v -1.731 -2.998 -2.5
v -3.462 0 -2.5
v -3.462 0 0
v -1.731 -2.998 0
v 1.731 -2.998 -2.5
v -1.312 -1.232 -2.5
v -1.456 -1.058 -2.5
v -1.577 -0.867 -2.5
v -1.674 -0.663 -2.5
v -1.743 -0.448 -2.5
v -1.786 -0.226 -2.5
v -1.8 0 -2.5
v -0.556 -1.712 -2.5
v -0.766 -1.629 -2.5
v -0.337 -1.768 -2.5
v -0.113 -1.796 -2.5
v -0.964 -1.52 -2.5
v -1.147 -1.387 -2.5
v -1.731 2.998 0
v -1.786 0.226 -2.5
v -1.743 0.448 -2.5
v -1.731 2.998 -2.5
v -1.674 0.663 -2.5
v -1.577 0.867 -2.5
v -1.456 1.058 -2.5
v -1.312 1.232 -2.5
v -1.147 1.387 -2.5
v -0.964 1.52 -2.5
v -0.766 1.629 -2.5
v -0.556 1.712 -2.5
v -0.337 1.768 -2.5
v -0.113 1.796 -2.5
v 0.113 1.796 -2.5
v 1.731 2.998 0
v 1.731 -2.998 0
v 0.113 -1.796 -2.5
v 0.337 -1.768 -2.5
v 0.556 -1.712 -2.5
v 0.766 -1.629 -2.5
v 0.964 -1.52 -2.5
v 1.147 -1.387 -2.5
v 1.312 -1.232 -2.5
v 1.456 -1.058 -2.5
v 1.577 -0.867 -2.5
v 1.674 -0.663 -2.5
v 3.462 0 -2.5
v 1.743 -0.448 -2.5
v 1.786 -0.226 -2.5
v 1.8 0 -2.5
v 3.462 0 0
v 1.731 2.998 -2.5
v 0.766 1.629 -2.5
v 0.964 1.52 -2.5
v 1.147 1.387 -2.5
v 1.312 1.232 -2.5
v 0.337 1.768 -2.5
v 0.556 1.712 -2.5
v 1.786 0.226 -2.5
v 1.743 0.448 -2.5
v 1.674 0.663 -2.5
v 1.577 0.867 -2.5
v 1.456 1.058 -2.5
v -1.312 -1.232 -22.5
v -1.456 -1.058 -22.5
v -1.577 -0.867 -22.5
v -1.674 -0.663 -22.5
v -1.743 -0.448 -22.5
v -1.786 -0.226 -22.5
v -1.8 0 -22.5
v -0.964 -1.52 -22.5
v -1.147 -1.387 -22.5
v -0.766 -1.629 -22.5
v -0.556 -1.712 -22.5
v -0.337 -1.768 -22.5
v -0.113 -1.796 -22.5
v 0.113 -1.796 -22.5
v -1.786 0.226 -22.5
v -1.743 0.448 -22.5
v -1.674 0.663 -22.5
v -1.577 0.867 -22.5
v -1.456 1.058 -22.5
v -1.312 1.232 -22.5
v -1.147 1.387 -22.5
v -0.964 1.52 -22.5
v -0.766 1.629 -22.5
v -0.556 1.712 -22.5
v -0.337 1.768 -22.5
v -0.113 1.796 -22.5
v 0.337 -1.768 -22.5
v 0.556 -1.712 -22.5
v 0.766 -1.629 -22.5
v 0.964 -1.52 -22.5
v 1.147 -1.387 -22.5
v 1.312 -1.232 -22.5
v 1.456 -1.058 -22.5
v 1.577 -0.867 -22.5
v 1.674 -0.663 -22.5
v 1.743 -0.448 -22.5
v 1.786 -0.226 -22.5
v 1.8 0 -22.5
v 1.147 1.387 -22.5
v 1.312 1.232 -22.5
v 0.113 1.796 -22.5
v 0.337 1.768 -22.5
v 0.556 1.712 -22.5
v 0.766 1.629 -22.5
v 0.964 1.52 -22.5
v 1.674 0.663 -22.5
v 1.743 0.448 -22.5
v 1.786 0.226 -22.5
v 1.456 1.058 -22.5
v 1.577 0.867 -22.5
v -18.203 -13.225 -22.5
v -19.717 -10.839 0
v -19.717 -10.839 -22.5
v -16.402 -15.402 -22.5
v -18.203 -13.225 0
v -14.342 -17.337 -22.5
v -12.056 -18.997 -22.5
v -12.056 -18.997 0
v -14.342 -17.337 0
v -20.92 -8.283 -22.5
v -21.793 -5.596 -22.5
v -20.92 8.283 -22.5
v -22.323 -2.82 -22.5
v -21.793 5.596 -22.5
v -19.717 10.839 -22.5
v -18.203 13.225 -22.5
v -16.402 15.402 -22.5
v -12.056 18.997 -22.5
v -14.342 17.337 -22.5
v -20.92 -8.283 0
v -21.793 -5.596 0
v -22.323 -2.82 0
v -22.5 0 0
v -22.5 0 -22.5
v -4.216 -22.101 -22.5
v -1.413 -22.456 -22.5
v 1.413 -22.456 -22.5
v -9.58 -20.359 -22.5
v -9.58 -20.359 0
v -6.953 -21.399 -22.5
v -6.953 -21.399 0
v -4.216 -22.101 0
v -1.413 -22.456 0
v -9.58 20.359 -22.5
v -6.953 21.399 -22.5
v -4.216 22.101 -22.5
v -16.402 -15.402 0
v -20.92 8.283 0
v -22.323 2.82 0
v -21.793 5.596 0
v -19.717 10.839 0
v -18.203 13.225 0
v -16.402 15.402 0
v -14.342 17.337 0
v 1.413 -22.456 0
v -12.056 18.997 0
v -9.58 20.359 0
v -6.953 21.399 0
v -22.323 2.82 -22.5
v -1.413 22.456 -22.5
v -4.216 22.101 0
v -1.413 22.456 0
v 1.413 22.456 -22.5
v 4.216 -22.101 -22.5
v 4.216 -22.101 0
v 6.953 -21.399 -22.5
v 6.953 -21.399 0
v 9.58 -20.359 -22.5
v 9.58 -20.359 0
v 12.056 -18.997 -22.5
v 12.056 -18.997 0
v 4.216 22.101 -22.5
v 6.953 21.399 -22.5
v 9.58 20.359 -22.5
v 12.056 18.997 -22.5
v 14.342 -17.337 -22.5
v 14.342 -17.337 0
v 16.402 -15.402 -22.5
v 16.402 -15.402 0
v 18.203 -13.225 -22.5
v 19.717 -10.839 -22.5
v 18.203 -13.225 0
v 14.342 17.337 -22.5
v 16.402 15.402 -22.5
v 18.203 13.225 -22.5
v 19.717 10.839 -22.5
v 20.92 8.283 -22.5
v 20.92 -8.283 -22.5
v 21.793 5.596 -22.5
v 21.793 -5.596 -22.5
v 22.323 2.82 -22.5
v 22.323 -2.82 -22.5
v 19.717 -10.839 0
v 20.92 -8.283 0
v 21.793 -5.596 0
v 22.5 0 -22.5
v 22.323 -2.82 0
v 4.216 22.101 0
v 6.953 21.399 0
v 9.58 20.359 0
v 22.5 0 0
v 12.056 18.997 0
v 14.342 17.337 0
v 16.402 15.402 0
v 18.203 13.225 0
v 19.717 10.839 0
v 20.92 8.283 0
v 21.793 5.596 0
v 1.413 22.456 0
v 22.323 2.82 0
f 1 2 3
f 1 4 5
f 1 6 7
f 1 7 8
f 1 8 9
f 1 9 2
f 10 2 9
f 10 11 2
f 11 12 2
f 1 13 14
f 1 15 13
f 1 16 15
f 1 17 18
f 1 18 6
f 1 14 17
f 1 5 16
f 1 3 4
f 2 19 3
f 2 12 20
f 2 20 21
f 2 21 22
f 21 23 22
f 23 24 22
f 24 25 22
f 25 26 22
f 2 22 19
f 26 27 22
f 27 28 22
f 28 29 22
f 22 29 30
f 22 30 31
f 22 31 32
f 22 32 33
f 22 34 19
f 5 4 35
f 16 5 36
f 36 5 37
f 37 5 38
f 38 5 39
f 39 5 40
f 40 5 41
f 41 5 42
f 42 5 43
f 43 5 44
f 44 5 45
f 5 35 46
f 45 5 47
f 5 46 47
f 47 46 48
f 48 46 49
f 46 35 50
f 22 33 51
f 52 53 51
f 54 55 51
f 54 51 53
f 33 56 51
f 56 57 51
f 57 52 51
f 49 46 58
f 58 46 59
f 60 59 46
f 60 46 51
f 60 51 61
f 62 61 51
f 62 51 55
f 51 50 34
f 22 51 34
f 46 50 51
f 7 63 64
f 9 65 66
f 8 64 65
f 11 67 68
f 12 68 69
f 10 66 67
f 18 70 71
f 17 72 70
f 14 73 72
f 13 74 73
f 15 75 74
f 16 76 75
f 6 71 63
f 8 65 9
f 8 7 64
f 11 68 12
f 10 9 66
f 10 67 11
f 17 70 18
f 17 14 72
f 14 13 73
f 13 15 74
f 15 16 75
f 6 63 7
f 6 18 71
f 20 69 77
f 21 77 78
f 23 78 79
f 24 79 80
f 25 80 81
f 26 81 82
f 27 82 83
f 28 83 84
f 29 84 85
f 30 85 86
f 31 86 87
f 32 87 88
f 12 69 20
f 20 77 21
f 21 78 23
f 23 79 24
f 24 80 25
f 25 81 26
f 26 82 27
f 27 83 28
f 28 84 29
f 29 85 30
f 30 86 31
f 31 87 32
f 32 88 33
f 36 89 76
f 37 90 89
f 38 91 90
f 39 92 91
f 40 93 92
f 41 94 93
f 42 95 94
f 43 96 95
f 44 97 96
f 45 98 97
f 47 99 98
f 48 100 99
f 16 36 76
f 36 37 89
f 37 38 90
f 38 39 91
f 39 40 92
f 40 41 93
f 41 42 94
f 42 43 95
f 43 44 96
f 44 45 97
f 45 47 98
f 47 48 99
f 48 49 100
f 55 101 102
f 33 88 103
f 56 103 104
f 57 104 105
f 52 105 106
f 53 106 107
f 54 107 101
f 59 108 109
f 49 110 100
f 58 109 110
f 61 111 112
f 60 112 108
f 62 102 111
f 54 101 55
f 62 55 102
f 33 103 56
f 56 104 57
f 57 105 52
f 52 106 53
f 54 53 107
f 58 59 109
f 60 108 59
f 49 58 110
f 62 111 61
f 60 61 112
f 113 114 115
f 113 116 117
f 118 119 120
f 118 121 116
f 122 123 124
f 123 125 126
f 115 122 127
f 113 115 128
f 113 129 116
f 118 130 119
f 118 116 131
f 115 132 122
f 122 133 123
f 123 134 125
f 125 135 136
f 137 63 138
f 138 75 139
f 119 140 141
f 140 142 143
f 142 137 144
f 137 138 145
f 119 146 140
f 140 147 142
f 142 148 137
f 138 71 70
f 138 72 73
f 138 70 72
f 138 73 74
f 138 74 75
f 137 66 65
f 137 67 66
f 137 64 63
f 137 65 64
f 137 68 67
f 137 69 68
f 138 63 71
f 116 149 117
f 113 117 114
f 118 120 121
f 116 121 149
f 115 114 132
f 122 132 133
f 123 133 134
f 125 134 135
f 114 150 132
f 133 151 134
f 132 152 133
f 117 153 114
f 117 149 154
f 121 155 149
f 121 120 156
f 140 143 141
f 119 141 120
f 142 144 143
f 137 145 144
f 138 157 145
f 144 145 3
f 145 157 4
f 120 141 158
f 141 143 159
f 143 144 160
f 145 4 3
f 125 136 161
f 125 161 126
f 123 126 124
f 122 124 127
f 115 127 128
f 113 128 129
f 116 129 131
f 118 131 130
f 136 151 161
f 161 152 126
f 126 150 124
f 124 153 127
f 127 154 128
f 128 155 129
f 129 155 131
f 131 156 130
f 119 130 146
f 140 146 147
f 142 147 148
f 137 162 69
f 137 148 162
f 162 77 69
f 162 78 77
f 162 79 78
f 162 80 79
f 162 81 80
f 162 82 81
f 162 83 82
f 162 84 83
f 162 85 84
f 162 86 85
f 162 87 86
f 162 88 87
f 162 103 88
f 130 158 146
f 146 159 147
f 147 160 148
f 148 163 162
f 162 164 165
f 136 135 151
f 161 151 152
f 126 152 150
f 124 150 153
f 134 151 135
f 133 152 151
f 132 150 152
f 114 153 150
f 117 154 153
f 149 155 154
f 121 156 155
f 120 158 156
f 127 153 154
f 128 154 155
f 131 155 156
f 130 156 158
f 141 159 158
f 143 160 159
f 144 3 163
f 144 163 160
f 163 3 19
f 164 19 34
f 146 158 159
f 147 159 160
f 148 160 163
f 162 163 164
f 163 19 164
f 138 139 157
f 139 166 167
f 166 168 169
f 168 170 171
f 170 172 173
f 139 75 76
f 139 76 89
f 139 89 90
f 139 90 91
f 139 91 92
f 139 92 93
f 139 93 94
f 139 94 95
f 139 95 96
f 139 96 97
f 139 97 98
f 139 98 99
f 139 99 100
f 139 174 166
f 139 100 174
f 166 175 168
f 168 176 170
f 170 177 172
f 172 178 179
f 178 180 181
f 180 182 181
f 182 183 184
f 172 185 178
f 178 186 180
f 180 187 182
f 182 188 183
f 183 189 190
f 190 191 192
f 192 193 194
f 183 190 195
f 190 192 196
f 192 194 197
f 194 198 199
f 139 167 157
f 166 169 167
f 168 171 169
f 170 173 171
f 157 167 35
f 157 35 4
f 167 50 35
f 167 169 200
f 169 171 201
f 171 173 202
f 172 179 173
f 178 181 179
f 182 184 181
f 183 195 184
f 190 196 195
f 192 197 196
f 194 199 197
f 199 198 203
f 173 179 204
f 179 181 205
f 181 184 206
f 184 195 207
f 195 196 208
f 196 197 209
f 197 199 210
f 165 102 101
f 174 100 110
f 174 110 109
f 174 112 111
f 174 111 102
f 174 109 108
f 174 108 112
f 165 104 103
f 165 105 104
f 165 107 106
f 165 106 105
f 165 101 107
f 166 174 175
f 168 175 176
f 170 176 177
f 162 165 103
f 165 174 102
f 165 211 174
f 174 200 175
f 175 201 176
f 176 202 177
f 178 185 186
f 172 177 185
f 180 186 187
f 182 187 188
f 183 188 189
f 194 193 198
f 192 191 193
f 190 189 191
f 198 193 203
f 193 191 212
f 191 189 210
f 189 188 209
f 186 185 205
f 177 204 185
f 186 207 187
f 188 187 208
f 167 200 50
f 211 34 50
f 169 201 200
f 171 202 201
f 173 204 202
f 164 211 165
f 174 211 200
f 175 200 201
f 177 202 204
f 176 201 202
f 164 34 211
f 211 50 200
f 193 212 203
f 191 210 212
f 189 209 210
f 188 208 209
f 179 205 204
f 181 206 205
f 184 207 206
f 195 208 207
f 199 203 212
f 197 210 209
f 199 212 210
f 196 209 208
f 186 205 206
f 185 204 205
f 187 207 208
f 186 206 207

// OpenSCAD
$fn = 50;


difference() {
	union() {
		translate(v = [0, 0, -22.5000000000]) {
			cylinder(h = 22.5000000000, r = 22.5000000000);
		}
	}
	union() {
		translate(v = [0, 0, 0]) {
			rotate(a = [0, 0, 0]) {
				difference() {
					union() {
						translate(v = [0, 0, -2.5000000000]) {
							linear_extrude(height = 2.5000000000) {
								polygon(points = [[3.4620000000, 0.0000000000], [1.7310000000, 2.9981799479], [-1.7310000000, 2.9981799479], [-3.4620000000, 0.0000000000], [-1.7310000000, -2.9981799479], [1.7310000000, -2.9981799479]]);
							}
						}
					}
					union();
				}
			}
		}
		#translate(v = [0, 0, -100.0000000000]) {
			cylinder(h = 200, r = 1.8000000000);
		}
	}
}
